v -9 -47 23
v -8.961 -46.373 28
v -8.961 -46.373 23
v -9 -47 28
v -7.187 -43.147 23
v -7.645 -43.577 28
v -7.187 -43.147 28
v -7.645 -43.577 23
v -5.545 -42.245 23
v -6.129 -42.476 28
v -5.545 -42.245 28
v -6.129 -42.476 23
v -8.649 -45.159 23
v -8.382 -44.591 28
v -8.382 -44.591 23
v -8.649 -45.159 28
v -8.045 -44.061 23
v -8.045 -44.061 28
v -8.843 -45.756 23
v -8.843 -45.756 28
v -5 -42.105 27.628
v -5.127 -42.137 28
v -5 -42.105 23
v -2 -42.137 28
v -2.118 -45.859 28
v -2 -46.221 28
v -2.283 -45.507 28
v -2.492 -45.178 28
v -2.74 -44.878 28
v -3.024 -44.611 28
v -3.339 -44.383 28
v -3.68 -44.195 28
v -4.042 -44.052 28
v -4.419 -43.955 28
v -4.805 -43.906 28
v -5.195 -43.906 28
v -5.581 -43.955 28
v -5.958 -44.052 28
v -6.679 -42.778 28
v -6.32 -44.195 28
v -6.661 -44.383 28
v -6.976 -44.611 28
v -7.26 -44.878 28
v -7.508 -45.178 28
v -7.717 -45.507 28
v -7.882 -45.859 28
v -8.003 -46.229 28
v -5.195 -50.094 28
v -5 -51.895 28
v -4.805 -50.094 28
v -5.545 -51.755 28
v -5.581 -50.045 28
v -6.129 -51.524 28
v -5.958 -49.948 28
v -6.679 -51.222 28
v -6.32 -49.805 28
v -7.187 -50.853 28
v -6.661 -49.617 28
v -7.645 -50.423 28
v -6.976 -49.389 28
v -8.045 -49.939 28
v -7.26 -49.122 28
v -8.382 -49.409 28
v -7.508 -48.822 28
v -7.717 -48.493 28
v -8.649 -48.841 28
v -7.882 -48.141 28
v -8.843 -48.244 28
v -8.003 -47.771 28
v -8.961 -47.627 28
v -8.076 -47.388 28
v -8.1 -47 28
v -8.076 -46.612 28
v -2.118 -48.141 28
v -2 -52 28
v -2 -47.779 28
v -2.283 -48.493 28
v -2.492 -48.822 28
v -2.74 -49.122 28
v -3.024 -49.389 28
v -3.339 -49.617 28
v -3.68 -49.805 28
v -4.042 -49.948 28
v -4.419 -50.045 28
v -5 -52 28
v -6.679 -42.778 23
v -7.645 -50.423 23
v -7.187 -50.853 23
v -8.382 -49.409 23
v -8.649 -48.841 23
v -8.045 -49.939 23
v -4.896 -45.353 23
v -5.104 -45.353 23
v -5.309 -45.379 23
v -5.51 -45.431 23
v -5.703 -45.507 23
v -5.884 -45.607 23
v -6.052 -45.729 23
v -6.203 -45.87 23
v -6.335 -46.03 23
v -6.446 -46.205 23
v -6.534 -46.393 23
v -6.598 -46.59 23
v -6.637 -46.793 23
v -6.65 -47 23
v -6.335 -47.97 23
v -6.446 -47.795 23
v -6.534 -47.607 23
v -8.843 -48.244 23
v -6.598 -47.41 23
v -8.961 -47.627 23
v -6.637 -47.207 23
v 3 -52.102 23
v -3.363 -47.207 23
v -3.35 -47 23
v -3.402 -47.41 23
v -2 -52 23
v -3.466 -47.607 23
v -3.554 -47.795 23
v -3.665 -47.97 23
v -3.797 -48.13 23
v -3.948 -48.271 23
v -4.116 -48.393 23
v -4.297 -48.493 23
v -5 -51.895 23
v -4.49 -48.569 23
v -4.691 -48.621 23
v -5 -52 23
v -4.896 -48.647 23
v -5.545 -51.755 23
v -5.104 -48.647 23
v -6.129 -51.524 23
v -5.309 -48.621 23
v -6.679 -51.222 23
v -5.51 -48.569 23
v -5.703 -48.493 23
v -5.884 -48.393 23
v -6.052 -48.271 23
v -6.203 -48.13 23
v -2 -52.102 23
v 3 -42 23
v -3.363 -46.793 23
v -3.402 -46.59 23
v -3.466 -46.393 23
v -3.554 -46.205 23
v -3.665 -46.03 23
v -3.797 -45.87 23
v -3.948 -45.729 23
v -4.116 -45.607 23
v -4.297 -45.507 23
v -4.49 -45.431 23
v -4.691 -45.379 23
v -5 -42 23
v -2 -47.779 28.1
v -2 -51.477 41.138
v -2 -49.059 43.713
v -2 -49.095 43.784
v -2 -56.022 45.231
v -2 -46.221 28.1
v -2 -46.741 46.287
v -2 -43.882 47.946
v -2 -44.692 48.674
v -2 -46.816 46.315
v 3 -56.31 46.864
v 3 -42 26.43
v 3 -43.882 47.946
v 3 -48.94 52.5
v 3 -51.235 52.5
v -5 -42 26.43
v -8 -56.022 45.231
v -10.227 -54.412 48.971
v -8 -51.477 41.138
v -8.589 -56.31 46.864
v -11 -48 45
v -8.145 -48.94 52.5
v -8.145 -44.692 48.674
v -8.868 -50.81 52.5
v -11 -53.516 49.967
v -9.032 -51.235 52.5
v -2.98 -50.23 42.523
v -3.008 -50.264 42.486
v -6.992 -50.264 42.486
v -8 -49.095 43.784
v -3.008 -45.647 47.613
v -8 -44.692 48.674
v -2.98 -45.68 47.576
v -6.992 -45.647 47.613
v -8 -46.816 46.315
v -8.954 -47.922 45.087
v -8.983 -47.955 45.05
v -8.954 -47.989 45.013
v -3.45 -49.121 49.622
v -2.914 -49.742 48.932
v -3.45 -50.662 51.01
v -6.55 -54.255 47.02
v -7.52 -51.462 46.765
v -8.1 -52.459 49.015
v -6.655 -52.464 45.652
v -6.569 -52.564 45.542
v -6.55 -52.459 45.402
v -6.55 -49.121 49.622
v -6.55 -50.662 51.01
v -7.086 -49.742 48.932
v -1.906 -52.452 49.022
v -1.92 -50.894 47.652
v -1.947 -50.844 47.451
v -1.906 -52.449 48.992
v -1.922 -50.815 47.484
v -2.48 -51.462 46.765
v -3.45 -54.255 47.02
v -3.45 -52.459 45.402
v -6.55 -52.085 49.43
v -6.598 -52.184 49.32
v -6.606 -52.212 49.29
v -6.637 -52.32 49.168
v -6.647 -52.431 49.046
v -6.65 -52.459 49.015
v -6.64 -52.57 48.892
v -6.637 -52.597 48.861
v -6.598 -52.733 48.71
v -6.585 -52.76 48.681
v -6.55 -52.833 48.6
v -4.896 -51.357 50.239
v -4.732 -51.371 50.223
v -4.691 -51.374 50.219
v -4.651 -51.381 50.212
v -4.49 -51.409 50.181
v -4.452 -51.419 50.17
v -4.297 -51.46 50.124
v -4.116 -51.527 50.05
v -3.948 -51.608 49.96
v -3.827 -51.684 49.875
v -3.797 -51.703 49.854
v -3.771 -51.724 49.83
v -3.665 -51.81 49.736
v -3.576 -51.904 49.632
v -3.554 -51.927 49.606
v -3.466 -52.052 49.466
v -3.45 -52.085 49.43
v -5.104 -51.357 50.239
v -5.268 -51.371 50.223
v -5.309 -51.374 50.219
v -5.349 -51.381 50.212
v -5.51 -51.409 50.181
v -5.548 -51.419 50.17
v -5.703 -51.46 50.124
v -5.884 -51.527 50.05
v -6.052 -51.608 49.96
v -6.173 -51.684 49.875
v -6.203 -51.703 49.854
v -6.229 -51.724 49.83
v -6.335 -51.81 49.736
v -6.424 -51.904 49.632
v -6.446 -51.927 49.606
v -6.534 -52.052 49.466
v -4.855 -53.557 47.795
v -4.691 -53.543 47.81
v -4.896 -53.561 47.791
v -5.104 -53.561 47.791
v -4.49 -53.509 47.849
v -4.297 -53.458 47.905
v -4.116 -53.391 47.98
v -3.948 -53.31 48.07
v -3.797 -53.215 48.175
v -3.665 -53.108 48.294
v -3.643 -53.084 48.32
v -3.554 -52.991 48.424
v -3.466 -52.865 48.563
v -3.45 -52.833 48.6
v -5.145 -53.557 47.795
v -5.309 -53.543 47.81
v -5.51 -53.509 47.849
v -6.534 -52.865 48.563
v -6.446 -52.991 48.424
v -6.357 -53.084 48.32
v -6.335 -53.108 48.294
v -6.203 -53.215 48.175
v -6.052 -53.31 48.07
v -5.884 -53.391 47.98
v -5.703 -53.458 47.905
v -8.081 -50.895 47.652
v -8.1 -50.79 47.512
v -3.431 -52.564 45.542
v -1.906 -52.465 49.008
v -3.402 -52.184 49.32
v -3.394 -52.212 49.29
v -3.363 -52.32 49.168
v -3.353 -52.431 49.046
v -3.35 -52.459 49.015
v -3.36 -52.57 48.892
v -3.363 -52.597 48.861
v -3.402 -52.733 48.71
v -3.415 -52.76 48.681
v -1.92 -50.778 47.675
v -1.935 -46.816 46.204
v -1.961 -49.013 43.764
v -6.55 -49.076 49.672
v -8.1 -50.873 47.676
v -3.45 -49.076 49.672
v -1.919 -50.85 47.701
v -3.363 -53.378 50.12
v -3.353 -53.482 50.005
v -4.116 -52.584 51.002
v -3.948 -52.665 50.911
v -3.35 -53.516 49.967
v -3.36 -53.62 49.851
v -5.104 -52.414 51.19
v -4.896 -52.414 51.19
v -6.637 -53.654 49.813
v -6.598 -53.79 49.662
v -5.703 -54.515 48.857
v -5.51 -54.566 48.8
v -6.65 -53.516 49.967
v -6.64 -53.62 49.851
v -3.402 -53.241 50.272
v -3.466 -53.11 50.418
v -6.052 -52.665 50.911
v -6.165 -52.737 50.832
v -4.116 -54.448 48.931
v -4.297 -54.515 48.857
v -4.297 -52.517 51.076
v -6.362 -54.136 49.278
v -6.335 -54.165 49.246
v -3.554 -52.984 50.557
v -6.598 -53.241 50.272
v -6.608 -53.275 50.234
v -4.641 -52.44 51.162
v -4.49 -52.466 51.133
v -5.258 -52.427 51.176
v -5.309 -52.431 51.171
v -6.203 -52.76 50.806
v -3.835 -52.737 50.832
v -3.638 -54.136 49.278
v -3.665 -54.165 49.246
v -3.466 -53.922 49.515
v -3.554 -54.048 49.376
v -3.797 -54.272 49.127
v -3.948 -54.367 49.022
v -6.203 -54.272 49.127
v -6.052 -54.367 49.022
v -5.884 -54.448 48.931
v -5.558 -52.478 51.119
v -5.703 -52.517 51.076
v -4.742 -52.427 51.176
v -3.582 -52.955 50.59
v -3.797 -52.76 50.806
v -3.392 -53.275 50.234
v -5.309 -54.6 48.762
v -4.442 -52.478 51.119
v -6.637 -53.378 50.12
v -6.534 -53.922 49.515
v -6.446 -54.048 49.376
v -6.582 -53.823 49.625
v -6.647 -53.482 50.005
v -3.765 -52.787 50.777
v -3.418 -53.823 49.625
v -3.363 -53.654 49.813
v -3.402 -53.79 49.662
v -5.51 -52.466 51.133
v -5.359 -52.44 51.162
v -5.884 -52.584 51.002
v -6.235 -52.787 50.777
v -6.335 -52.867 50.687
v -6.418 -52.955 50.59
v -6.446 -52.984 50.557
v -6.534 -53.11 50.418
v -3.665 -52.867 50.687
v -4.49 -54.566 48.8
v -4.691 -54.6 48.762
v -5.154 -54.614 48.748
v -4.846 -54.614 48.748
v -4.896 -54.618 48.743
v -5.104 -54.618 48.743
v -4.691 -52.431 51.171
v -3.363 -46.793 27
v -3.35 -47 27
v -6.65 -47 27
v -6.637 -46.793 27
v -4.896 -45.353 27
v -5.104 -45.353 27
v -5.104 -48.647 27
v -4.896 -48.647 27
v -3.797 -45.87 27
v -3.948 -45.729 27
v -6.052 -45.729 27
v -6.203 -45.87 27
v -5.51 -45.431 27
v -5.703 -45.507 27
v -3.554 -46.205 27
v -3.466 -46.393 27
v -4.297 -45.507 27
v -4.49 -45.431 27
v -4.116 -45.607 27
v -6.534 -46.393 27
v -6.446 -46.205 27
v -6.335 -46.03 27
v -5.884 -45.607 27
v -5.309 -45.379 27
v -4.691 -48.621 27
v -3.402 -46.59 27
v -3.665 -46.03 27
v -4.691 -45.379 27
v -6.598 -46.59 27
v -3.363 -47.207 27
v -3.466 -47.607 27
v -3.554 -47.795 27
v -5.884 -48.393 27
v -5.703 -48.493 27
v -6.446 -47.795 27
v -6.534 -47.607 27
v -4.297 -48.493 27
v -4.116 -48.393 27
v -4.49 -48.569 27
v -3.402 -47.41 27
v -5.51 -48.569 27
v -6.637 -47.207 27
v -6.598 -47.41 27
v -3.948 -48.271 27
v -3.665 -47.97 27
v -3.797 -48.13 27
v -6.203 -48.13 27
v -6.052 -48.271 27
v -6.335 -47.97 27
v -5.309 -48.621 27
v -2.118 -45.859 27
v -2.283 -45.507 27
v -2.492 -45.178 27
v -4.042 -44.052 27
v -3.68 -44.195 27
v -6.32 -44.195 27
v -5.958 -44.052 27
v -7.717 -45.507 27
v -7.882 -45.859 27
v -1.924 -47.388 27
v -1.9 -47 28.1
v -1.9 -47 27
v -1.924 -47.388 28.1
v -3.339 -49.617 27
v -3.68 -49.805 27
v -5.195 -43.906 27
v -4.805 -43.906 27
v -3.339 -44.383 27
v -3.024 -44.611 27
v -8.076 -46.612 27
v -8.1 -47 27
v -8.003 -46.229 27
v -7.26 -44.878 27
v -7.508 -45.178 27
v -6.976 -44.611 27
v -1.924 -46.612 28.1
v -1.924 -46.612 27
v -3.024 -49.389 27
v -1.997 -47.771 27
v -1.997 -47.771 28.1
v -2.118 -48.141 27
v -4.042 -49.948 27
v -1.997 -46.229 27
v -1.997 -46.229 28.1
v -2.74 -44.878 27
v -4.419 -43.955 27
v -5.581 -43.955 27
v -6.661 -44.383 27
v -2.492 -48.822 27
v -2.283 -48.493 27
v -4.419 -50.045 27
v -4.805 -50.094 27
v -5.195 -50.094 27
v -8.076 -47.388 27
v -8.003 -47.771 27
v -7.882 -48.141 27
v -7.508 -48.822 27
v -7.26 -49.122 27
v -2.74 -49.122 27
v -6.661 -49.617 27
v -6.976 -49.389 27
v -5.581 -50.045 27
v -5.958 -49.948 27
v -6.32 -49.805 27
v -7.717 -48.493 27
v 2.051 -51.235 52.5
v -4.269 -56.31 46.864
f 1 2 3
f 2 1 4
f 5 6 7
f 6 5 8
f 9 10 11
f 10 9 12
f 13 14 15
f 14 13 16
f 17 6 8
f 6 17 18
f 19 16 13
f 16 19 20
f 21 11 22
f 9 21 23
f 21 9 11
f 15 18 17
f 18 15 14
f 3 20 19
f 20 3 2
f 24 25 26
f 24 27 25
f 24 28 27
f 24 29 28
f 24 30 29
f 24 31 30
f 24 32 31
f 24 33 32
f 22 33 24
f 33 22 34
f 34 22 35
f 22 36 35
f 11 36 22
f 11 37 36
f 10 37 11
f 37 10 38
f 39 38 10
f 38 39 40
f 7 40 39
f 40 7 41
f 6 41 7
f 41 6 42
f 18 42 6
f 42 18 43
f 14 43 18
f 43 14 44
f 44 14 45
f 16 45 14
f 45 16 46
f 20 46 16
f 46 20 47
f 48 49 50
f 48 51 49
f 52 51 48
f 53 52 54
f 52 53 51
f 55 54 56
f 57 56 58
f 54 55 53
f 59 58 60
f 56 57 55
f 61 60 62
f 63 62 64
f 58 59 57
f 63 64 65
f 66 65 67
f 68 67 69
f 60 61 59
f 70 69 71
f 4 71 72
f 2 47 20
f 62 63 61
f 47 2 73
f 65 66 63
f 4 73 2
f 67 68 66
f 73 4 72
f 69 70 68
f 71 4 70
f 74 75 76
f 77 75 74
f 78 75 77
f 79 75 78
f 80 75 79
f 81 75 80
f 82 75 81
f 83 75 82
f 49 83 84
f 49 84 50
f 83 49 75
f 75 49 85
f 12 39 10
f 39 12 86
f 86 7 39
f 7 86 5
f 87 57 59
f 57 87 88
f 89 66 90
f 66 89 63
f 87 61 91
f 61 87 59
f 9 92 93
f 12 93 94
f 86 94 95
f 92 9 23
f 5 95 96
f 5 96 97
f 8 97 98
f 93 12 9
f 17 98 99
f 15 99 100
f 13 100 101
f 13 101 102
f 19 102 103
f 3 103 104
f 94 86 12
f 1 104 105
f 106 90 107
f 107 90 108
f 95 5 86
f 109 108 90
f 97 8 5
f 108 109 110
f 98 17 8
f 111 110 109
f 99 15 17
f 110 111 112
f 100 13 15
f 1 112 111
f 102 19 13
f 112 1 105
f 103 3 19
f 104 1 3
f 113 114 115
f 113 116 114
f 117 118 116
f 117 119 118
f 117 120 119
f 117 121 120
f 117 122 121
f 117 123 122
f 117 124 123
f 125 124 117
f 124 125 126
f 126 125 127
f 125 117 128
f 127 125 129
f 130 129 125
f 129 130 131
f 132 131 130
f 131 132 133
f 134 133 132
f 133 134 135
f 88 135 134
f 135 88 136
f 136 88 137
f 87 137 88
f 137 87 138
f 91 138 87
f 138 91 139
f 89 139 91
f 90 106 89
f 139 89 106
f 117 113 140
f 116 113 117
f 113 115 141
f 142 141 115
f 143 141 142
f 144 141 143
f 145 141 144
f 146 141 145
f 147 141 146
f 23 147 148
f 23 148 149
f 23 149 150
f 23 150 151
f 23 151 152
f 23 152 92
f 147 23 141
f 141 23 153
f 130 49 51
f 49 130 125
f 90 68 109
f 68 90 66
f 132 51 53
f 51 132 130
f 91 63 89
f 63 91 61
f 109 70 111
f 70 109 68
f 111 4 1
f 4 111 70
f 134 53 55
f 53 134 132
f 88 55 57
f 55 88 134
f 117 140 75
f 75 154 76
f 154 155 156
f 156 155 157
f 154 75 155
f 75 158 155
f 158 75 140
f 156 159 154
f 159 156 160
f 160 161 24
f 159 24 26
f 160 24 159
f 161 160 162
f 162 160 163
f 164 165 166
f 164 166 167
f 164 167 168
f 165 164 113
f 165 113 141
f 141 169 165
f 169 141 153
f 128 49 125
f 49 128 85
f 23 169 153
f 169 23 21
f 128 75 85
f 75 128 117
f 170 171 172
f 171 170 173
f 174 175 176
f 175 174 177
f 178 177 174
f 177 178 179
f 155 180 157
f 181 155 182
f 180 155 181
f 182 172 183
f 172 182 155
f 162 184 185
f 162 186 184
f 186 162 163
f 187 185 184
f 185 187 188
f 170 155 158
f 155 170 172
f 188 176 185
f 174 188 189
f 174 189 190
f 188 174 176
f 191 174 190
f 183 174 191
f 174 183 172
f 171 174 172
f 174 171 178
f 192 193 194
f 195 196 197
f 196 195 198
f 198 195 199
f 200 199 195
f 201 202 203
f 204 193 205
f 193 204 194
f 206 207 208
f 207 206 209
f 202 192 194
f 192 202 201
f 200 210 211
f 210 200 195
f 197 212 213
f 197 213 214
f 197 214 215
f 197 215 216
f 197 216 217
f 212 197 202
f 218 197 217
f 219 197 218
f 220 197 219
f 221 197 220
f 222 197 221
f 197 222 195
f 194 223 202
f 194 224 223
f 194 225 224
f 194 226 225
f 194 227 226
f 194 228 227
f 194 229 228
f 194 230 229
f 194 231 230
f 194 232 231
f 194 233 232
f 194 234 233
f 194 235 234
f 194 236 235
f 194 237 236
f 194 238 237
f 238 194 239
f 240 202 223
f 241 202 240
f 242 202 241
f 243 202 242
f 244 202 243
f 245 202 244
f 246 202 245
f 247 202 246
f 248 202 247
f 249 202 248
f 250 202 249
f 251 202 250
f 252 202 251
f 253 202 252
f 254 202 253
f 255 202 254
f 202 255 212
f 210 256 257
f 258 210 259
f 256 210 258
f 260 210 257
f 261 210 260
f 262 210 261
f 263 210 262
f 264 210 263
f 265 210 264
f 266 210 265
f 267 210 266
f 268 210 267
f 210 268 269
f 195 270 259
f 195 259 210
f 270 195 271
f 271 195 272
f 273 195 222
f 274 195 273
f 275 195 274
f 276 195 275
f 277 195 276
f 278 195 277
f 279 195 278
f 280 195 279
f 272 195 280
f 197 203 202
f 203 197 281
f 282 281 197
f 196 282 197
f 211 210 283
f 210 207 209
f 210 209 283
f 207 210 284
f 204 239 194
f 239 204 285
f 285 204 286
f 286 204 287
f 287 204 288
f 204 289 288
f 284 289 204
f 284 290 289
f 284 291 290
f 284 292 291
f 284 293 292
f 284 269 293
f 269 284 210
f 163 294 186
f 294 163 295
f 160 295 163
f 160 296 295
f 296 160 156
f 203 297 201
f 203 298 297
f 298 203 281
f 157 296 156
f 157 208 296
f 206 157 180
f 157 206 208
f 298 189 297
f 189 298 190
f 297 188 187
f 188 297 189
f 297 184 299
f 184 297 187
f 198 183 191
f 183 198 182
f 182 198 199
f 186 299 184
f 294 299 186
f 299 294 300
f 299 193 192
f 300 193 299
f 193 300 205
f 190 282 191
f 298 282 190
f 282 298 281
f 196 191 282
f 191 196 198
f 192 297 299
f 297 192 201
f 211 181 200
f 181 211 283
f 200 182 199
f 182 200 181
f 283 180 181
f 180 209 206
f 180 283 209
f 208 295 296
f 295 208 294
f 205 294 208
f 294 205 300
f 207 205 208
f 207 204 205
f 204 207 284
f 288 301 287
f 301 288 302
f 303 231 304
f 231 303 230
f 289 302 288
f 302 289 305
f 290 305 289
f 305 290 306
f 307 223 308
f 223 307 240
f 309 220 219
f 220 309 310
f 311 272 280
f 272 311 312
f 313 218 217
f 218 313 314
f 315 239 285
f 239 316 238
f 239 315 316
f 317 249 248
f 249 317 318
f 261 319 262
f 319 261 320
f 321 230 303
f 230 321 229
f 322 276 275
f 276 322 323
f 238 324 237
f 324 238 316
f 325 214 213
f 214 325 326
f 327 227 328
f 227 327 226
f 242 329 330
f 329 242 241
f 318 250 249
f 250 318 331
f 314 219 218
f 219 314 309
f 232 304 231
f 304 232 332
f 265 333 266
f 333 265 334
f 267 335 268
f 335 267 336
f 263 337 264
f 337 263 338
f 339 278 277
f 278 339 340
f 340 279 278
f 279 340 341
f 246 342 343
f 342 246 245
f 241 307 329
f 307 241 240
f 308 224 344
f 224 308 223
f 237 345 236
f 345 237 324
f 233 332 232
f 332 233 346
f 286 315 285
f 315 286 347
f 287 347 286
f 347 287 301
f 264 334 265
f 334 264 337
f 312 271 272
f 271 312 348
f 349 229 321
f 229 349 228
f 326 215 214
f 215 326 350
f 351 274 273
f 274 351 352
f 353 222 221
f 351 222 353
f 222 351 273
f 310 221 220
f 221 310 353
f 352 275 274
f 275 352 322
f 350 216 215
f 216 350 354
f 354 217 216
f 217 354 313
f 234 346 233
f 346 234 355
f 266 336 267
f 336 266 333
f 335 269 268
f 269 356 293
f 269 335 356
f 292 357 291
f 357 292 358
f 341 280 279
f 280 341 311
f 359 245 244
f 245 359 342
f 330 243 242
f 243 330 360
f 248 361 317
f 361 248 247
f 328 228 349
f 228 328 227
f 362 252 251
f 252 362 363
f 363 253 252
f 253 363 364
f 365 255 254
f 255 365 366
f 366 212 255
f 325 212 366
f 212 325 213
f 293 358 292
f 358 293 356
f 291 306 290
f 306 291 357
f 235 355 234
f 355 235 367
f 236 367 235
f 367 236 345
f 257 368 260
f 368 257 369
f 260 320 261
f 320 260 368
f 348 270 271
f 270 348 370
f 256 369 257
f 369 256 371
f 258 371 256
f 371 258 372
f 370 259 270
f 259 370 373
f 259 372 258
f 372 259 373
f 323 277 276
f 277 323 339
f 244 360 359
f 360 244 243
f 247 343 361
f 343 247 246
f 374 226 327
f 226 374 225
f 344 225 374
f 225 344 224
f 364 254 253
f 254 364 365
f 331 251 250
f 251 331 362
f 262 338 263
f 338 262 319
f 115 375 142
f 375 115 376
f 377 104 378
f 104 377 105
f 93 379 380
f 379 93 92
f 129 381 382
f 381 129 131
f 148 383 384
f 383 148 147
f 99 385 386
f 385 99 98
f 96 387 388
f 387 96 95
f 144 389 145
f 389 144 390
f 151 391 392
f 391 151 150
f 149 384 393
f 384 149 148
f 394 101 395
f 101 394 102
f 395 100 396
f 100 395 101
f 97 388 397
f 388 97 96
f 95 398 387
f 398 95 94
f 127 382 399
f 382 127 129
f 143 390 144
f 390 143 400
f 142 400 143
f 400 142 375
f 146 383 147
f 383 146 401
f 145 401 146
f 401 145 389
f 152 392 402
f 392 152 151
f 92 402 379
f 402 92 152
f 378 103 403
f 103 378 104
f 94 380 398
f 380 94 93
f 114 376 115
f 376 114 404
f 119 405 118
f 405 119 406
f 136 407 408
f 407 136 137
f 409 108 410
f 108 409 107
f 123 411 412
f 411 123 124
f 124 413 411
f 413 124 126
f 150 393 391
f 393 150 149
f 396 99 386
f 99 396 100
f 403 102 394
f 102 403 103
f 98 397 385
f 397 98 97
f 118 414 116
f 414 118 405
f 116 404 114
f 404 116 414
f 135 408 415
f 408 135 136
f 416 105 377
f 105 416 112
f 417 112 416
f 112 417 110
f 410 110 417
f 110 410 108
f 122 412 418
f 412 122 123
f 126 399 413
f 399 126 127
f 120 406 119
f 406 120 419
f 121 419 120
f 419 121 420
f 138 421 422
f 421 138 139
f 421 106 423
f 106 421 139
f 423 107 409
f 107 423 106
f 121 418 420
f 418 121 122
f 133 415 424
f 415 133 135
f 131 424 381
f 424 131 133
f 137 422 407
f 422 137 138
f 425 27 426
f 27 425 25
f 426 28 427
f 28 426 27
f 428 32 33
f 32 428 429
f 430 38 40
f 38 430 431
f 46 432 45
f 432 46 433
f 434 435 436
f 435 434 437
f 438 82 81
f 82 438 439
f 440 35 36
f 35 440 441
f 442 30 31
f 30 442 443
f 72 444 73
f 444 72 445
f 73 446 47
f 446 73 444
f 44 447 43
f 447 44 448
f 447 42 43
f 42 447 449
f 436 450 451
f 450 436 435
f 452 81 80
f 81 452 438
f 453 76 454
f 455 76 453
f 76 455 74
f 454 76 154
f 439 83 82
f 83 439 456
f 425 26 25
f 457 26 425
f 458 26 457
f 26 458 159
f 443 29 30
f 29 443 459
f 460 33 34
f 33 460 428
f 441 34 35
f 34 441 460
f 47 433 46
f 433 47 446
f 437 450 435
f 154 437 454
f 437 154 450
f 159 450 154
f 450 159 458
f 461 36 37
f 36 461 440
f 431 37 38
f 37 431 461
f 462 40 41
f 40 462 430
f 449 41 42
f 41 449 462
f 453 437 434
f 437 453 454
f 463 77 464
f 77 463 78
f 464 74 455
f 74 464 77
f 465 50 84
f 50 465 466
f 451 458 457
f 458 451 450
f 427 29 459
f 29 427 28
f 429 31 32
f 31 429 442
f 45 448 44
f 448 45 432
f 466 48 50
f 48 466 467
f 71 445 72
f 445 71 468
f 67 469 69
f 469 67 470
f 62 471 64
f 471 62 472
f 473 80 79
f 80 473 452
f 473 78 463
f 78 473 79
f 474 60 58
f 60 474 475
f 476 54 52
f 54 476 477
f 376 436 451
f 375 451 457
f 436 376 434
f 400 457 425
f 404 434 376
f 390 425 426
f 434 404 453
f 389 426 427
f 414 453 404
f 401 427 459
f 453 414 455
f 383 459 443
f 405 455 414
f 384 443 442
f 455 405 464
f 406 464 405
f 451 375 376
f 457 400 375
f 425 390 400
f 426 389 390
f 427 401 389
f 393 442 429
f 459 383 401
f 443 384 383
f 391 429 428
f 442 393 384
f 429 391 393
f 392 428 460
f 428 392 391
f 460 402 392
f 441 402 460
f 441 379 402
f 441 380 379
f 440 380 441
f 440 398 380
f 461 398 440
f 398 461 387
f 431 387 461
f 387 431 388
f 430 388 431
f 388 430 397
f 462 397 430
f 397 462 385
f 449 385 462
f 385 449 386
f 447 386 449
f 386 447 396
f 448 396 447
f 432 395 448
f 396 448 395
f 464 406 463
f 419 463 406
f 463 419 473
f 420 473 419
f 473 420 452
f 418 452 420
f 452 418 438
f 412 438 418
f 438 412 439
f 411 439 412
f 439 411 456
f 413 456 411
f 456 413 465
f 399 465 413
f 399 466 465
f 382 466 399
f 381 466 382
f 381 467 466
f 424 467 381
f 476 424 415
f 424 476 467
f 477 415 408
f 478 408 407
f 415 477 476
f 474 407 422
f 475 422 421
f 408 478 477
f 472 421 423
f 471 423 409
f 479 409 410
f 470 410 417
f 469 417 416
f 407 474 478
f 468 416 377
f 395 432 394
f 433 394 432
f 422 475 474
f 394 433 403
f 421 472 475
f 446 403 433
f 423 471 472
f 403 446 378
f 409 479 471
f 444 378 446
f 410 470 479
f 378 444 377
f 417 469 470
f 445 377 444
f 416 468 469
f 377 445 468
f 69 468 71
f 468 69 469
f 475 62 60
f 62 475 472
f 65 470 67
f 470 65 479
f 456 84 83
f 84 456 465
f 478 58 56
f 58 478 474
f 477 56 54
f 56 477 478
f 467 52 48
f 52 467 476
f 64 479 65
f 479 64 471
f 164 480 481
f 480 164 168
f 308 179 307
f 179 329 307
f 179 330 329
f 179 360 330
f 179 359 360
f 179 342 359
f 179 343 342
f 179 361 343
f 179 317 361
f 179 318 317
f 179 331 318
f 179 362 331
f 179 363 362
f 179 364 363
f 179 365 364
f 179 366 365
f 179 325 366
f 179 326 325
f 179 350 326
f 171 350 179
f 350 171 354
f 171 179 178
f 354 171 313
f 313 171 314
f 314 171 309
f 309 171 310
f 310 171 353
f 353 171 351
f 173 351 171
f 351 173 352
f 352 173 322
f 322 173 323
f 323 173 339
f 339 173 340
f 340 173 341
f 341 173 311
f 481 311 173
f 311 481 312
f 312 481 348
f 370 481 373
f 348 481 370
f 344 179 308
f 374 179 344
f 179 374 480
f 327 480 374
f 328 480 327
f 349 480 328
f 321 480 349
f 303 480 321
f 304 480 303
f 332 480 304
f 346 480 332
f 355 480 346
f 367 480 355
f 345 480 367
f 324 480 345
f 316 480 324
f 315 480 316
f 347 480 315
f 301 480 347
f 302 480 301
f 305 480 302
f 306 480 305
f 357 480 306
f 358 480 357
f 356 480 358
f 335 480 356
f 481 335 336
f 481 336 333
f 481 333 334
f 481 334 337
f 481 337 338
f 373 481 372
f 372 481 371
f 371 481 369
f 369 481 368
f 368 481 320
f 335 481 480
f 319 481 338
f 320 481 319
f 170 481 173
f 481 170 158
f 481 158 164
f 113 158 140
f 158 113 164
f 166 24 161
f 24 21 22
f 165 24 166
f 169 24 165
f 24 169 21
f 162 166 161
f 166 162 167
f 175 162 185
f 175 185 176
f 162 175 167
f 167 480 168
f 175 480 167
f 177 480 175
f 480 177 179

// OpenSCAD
// PRUSA iteration4
// Print fan support
// GNU GPL v3
// Josef Pr?ša <iam@josefprusa.cz> and contributors
// http://www.reprap.org/wiki/Prusa_Mendel
// http://prusamendel.org



difference()
{
    union()
{
        translate([-4,-47,23]) rotate([0,0,0])cylinder(h = 5, r=5, $fn=50);
        translate([-2,-57,23]) rotate([0,0,0]) cube([5,15,30]);
        translate([-5,-52,23]) rotate([0,0,0]) cube([8,10,5]);
        translate([-5,-48,45]) rotate([48,0,0])cylinder(h = 10, r=6, $fn=6);
}

        translate([-5,-48,45]) rotate([48,0,0])cylinder(h = 30, r=1.65, $fn=50);


        difference()
        {
            union()
            {
                translate([-5,-48,45]) rotate([48,0,0])cylinder(h = 6, r=3.1, $fn=6);
                translate([-5,-47.9,45]) rotate([48,0,0])cylinder(h = 4, r2=3.1,r1=4, $fn=6);
            }
            translate([-2,-55,40]) rotate([0,0.6,0]) cube([10,10,10]);
        }
        translate([-5,-47,10]) rotate([0,0,0])cylinder(h = 25, r=1.65, $fn=50);
        translate([-5,-47,27]) rotate([0,0,0])cylinder(h = 1.1, r=3.1, $fn=50);

        translate([10,-85,15]) rotate([0,-48,90]) cube([60,50,20]);
        translate([-15,-71,15]) rotate([10,0,0]) cube([50,20,40]);
        translate([-15,-41,15]) rotate([5,0,0]) cube([50,20,40]);
        translate([-15,-39.5,44]) rotate([48,0,0]) cube([20,20,20]);
        translate([-15,-60,52.5]) rotate([0,0,0]) cube([20,20,20]);
}
